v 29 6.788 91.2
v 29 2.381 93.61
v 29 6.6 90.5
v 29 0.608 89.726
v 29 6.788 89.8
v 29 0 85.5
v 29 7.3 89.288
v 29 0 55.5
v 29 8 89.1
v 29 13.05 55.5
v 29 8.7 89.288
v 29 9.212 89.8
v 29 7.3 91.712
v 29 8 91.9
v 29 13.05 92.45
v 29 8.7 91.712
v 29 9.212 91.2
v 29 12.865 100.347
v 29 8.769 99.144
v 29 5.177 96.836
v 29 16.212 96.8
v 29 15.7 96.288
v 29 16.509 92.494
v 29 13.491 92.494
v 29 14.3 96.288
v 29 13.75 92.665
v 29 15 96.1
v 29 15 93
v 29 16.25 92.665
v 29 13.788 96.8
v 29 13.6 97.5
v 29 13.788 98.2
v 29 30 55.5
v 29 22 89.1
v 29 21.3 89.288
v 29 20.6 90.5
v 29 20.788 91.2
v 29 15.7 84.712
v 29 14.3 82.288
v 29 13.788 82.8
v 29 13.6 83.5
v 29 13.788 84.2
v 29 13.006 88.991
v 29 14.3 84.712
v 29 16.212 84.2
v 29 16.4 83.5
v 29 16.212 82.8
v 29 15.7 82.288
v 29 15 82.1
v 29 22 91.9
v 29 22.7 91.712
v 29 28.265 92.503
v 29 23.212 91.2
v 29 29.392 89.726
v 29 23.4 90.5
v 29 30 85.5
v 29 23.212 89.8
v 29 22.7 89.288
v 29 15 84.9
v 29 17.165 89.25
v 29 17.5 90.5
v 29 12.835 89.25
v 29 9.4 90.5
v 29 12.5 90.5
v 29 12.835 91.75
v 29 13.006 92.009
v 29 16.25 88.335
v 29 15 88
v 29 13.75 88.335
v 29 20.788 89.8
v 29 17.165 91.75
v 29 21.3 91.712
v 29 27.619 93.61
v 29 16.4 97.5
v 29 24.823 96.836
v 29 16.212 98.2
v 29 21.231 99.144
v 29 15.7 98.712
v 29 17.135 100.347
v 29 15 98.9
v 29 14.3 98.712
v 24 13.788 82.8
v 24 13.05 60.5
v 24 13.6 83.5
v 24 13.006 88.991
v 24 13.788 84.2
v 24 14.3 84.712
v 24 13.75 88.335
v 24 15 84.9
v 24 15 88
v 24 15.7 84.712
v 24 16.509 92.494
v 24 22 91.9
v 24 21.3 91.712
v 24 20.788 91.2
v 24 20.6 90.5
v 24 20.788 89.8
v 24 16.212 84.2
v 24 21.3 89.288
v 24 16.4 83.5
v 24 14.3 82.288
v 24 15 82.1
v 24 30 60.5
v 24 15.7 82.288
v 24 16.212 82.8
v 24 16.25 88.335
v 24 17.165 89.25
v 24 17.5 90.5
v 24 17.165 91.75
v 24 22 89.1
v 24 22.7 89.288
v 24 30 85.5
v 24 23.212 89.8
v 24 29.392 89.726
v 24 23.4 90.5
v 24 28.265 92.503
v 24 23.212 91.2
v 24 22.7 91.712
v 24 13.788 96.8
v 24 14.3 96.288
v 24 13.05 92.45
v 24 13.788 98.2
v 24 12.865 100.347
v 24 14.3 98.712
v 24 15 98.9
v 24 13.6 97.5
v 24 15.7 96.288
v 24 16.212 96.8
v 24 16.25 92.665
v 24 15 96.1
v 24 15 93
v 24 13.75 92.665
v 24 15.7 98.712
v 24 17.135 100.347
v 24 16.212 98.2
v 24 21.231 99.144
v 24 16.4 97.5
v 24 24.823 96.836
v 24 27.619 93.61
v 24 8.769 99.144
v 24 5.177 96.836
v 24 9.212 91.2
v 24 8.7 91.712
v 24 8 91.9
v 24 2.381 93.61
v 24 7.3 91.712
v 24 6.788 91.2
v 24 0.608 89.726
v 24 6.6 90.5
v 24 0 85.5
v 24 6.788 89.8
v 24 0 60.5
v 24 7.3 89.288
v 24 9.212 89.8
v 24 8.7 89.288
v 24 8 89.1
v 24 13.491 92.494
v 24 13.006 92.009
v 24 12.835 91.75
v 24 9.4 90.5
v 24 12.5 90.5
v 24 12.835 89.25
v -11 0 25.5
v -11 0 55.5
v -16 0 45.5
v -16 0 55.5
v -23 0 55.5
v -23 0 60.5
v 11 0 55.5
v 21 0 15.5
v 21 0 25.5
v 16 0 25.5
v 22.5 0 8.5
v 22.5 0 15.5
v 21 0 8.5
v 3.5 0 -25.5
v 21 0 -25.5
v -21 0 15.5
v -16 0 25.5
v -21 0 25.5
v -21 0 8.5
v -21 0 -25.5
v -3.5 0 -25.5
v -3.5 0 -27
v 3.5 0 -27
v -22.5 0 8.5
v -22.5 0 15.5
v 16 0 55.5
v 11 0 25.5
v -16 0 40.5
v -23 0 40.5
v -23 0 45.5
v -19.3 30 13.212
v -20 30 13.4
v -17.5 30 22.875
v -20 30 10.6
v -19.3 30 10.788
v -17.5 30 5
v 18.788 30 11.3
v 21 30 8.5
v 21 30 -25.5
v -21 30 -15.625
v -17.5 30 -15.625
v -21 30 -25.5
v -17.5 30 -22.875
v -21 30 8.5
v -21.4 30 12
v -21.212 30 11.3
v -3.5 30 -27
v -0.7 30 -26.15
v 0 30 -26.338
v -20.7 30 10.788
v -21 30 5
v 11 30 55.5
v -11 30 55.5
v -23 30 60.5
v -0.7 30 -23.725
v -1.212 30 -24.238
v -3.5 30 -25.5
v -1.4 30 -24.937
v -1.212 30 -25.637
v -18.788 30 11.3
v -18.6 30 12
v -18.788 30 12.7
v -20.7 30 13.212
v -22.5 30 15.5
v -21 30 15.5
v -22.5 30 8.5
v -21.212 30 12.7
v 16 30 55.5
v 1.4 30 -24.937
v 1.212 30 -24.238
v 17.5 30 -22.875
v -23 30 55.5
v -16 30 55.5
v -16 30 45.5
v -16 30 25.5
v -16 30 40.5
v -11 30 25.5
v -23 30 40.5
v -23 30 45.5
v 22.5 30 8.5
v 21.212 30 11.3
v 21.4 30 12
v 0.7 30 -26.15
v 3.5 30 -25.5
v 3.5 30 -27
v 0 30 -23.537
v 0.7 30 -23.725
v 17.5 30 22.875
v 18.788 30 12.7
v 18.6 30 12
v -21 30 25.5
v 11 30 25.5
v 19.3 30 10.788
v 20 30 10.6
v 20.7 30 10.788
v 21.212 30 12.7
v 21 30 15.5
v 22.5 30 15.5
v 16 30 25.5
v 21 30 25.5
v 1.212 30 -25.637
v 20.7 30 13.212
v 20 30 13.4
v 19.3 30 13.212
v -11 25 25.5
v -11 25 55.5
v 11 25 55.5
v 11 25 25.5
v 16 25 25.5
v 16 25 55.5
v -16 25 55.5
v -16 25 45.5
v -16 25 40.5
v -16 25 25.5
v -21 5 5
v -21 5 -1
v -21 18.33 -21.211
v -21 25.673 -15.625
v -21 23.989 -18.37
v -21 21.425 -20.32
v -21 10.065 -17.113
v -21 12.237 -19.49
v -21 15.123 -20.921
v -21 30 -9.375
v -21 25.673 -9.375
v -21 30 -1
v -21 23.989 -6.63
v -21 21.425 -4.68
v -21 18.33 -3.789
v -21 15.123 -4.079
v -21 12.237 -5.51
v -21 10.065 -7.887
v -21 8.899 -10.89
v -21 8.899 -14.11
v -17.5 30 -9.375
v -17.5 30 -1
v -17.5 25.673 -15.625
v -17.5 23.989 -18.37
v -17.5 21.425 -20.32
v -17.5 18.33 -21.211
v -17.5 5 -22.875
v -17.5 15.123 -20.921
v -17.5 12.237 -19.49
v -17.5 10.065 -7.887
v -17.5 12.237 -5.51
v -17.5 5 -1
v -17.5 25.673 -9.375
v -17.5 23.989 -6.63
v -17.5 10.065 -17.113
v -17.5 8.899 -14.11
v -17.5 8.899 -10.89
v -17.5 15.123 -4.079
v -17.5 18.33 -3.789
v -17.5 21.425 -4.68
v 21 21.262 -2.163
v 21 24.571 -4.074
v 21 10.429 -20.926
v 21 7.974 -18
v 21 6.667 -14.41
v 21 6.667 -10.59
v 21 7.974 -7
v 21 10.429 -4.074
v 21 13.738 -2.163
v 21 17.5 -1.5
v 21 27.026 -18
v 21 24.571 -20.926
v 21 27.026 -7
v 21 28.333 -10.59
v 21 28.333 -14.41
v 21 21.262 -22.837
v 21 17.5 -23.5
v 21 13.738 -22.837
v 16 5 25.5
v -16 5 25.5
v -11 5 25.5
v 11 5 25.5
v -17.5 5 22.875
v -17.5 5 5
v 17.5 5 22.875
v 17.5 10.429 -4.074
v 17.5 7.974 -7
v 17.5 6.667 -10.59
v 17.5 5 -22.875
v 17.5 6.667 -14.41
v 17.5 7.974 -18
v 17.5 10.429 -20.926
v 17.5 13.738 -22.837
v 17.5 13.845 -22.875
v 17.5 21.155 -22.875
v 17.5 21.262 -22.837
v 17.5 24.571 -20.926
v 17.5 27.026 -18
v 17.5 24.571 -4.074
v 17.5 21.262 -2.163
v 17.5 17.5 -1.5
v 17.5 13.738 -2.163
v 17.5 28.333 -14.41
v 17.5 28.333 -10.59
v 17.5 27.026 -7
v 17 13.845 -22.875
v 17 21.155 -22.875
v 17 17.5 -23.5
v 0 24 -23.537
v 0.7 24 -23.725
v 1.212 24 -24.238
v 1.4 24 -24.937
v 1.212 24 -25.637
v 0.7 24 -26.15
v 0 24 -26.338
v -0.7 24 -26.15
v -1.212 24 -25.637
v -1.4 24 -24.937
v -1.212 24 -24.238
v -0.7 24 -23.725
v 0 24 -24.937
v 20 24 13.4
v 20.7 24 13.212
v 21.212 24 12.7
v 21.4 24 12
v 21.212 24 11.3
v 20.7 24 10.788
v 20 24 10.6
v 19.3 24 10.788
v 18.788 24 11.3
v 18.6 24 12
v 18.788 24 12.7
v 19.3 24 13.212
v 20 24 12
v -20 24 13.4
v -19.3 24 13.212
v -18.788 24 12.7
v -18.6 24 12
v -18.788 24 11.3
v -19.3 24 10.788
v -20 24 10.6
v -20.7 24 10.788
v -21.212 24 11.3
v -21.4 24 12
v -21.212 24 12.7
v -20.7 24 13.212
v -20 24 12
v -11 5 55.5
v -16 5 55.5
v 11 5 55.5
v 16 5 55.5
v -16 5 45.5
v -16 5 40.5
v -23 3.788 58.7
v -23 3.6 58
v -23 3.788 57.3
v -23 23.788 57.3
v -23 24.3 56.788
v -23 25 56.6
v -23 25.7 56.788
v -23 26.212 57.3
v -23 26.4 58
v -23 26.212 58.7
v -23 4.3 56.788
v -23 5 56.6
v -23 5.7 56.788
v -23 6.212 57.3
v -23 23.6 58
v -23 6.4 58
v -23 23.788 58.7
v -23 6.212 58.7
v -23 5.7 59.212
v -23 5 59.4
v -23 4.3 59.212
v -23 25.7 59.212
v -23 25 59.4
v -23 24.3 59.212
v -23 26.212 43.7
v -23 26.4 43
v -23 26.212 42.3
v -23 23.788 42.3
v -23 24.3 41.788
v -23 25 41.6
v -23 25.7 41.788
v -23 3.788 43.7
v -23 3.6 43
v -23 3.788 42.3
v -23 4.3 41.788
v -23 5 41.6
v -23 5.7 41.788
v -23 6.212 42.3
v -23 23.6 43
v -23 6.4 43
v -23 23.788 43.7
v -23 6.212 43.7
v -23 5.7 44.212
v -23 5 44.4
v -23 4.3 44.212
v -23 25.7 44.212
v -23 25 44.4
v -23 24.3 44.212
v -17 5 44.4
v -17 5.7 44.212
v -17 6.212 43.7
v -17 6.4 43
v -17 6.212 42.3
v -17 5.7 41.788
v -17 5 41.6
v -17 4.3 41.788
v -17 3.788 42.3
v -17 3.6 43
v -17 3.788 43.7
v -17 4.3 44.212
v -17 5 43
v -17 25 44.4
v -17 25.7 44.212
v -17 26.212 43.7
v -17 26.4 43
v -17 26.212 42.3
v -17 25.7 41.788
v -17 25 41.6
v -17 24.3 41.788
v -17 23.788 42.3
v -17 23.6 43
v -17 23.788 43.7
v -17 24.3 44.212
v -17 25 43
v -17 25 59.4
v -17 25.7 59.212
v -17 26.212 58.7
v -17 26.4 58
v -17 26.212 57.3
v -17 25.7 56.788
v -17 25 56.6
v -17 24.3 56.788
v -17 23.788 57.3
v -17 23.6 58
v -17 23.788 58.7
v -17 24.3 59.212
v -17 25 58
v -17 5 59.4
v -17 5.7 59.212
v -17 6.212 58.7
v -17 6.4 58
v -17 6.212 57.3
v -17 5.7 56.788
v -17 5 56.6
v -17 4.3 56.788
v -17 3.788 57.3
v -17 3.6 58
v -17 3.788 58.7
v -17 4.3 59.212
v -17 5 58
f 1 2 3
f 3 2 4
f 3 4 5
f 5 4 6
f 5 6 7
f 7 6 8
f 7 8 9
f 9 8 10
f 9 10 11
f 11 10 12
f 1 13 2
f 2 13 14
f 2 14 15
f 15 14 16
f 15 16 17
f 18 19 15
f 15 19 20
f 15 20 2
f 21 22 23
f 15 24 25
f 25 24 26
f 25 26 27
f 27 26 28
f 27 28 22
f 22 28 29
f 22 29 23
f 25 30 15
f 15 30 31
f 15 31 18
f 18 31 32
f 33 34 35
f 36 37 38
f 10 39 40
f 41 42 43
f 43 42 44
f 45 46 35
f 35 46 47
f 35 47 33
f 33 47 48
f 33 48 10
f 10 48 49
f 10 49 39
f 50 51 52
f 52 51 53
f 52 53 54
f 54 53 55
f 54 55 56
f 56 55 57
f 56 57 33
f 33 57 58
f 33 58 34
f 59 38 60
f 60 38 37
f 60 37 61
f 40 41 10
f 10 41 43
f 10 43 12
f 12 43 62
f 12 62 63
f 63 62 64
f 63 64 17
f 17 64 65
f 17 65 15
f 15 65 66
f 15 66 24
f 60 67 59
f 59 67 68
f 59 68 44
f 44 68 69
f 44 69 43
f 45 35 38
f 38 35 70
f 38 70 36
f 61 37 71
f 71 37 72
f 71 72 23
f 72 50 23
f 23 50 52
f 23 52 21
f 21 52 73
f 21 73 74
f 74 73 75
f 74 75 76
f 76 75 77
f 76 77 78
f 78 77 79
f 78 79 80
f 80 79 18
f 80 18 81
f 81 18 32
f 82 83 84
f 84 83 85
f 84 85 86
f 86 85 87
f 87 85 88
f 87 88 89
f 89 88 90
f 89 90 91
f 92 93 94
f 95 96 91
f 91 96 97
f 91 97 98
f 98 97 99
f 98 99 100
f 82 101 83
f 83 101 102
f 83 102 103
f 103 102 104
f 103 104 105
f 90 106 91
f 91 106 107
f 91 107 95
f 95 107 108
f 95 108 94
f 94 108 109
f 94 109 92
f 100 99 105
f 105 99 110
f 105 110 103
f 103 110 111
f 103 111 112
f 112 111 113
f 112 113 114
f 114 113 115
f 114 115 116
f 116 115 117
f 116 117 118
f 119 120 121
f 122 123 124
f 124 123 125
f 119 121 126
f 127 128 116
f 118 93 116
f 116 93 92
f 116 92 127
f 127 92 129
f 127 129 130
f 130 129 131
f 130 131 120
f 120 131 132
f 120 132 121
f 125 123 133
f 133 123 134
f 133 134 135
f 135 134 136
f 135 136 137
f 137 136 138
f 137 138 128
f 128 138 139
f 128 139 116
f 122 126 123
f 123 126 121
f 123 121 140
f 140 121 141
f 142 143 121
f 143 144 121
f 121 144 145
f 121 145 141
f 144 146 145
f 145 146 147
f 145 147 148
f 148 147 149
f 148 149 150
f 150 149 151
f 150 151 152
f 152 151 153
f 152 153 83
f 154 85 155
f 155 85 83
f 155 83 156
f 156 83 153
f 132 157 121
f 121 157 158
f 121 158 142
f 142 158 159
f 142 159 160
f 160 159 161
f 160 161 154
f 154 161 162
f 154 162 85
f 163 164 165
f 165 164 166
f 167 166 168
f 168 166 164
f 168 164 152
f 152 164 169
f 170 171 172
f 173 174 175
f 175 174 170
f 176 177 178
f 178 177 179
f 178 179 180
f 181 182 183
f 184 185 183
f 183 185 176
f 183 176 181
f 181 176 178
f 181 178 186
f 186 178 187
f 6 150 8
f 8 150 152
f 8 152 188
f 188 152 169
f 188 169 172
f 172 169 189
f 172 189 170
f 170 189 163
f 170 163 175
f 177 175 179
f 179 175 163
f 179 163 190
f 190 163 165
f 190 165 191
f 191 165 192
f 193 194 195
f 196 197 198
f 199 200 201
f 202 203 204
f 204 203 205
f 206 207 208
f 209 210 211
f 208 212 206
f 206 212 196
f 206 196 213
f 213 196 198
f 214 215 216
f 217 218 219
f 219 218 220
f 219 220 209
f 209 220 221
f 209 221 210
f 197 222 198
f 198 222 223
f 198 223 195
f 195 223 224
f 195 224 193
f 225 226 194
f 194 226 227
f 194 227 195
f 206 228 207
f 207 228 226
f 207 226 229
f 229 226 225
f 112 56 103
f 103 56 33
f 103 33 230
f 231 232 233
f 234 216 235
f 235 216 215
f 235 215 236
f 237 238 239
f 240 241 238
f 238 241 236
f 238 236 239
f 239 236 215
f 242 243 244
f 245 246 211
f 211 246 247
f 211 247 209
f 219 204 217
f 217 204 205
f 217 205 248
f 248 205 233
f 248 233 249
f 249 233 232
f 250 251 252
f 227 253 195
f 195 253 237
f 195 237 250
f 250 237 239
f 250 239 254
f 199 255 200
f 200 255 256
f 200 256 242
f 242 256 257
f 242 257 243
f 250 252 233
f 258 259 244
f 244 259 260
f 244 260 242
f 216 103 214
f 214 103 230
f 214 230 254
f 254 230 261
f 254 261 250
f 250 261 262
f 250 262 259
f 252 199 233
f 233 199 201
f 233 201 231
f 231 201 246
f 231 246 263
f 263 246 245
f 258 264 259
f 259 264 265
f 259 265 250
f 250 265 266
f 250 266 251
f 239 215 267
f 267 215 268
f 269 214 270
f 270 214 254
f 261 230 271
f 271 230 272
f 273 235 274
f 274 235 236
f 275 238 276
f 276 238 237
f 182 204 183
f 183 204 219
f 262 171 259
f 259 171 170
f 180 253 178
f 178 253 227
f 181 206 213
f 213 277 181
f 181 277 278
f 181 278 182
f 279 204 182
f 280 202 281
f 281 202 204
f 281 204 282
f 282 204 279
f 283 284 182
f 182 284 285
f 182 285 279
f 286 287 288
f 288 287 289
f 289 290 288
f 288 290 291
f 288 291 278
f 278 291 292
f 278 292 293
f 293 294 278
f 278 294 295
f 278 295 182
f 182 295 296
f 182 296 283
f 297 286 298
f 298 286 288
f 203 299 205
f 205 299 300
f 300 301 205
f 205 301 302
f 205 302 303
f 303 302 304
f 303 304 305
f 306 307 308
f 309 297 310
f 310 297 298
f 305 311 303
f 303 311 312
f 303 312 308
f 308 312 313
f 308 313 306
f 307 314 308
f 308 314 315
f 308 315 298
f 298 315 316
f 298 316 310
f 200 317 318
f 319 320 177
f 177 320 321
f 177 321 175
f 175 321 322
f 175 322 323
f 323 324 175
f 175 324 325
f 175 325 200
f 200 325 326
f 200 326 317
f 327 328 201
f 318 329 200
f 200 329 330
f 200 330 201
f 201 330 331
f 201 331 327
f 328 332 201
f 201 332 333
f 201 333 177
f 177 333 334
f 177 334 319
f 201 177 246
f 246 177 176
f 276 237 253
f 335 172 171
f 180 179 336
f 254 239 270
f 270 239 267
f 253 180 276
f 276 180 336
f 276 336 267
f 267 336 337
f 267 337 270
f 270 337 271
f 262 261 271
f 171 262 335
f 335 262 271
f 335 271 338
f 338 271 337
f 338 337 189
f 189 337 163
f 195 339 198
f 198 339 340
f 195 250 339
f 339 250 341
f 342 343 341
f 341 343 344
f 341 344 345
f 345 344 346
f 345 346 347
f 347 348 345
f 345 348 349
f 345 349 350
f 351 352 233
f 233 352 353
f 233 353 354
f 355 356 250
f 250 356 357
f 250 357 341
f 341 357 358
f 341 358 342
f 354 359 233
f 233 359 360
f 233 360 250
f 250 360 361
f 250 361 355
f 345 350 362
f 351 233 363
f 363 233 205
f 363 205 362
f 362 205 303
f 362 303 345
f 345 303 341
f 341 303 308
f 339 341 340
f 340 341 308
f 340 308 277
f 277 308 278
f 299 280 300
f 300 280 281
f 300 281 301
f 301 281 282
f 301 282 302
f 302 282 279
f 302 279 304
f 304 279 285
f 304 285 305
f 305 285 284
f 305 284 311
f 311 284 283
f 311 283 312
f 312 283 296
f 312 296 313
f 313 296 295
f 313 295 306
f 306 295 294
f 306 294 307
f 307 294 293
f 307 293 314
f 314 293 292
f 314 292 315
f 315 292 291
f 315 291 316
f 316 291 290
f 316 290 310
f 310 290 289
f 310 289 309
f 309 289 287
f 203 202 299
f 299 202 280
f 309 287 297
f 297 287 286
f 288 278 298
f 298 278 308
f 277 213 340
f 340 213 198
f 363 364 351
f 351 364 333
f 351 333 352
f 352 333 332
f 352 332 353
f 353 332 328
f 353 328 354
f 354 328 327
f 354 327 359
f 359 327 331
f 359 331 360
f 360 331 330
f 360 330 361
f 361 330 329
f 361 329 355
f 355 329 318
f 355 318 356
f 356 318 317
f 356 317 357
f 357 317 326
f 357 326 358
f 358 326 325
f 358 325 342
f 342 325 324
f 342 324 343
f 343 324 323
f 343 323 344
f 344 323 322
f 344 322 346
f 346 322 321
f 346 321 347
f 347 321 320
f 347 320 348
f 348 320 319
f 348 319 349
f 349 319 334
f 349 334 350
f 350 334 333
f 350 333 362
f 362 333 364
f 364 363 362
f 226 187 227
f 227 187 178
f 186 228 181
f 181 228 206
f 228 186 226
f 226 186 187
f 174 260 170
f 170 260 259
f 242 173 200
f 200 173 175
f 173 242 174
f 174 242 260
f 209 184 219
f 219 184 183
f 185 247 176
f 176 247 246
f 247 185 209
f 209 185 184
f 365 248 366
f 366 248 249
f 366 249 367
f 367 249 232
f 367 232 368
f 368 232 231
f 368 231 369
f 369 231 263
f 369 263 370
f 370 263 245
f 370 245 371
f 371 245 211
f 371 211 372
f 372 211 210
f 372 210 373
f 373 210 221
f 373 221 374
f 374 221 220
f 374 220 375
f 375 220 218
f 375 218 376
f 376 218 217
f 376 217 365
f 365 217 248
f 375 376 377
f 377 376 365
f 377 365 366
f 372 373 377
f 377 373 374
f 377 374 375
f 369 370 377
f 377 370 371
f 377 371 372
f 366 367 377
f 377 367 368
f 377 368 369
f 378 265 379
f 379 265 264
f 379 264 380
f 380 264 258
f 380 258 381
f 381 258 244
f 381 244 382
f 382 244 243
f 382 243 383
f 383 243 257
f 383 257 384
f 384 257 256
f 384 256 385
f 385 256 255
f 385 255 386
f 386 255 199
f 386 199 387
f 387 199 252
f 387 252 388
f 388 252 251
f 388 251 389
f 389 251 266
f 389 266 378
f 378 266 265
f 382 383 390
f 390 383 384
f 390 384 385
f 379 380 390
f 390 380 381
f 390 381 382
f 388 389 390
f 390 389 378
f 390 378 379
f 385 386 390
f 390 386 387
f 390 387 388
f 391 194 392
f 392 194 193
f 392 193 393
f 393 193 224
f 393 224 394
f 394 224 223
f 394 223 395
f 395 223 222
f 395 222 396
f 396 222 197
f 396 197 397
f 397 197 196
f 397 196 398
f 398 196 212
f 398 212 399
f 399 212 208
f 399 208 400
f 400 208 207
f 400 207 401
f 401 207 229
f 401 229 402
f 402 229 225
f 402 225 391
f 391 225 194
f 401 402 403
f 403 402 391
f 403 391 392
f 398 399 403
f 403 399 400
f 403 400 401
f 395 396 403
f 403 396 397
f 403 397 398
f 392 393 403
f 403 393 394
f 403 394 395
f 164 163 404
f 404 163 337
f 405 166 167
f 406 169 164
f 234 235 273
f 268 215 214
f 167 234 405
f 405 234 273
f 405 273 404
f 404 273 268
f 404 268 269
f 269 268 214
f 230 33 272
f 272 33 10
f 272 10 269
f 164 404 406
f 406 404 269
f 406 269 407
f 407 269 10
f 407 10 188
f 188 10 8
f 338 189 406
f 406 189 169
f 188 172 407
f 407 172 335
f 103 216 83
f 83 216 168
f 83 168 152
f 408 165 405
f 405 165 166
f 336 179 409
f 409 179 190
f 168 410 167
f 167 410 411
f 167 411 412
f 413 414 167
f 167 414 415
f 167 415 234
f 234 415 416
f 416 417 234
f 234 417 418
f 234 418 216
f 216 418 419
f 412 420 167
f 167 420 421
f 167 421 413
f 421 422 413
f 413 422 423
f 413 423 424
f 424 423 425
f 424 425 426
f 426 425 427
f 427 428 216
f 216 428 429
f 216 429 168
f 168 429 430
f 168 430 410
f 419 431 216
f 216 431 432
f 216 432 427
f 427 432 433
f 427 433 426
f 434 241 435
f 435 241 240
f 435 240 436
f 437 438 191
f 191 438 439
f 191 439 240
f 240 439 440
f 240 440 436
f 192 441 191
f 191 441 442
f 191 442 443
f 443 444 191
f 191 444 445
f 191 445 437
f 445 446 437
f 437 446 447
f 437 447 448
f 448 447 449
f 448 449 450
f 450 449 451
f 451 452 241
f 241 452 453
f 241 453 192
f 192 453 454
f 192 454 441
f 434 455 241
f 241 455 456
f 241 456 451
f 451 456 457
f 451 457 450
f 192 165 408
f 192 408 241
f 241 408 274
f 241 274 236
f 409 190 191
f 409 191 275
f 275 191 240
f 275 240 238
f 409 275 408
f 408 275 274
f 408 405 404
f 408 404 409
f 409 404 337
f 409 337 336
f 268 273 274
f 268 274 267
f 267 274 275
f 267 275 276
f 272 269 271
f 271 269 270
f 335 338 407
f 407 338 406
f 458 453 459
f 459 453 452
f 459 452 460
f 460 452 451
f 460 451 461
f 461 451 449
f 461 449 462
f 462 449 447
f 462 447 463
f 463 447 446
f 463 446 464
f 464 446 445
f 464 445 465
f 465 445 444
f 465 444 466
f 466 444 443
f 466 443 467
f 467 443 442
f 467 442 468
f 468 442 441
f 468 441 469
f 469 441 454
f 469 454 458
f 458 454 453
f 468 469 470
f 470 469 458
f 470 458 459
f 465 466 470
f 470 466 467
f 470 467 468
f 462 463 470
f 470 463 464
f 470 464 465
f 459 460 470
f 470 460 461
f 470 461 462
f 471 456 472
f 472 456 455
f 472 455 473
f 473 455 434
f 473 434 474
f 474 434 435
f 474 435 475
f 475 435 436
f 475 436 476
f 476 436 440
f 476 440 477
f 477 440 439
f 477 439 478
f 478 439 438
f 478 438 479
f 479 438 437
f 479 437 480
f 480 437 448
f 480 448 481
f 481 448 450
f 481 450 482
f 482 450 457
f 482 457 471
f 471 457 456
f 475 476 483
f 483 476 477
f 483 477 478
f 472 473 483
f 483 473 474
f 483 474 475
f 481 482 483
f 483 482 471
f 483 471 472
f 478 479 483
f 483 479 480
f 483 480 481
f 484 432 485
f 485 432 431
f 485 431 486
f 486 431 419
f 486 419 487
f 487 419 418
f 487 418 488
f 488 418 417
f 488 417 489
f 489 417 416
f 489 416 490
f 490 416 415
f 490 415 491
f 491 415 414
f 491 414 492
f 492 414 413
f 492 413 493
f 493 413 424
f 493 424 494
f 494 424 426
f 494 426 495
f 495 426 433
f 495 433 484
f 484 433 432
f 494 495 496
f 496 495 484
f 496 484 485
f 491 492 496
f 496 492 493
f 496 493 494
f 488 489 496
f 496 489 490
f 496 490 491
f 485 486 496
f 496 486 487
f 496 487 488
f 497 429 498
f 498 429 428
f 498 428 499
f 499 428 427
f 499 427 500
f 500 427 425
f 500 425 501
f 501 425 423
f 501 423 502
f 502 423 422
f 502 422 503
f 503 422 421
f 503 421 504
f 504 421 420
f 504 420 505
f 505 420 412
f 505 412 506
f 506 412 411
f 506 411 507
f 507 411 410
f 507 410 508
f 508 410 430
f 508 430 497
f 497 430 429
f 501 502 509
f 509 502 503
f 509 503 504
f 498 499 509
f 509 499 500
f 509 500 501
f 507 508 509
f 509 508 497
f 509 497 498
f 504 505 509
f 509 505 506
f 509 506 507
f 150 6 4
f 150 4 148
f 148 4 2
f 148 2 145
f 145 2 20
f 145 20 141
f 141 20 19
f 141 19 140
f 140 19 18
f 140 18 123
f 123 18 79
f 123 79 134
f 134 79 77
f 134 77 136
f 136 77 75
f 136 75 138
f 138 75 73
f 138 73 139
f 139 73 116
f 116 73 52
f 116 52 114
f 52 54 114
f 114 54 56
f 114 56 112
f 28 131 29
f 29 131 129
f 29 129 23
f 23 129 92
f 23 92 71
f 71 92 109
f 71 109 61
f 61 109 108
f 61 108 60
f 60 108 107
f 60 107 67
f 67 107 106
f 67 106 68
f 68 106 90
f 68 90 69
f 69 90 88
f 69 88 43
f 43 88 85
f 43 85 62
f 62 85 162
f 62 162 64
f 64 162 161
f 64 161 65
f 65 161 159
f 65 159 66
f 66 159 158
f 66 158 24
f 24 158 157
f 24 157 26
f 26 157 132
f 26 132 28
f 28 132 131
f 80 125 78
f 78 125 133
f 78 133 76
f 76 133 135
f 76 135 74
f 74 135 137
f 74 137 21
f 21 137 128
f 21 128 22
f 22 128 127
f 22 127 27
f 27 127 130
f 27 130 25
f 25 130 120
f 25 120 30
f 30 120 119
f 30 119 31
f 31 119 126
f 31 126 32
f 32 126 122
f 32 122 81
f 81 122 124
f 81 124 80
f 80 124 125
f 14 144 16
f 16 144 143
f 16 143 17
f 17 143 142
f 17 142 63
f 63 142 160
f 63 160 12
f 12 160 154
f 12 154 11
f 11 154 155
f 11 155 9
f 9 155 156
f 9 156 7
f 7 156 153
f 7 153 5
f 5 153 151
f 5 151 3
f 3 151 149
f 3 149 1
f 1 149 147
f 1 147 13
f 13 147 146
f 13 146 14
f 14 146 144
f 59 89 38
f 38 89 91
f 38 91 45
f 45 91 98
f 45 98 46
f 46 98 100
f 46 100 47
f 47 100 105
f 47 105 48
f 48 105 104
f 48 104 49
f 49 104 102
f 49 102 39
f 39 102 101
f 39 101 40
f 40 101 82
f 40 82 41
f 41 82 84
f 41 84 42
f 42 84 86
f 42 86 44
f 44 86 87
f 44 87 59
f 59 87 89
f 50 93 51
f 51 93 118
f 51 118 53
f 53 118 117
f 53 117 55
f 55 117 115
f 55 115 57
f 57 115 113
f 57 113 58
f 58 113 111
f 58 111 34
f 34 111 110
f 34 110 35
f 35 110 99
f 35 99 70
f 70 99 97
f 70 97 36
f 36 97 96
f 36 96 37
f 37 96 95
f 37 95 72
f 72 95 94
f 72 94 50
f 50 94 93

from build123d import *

# Parameters (mm, degrees)
BOSS_EXTRUDE1_DEPTH = 5
SKETCH3_W           = 42
SKETCH3_H           = 51
SKETCH3_W_2         = 35
SKETCH3_H_2         = 45.75
BOSS_EXTRUDE3_DEPTH = 25
SKETCH4_R           = 8.75
CUT_EXTRUDE2_DEPTH  = 5
CUT_EXTRUDE3_DEPTH  = 4
SKETCH7_W           = 6
SKETCH7_H           = 25
CUT_EXTRUDE4_DEPTH  = 4
SKETCH9_R           = 11
CUT_EXTRUDE5_DEPTH  = 4
SKETCH16_W          = 7
SKETCH16_H          = 30
BOSS_EXTRUDE5_DEPTH = 1.5
SKETCH17_W          = 7
SKETCH17_H          = 30
BOSS_EXTRUDE6_DEPTH = 1.5
SKETCH19_W          = 7
SKETCH19_H          = 30
BOSS_EXTRUDE7_DEPTH = 1.5
SKETCH18_R          = 1.4
CUT_EXTRUDE7_DEPTH  = 6
BOSS_EXTRUDE8_DEPTH = 30
SKETCH24_W          = 30
SKETCH24_H          = 20
CUT_EXTRUDE8_DEPTH  = 32
SKETCH29_R          = 1.4
CUT_EXTRUDE9_DEPTH  = 6
CUT_EXTRUDE10_DEPTH = 6
SKETCH28_R          = 2.5
SKETCH28_R_2        = 1.4
CUT_EXTRUDE11_DEPTH = 6


with BuildPart() as part:
    # Sketch1 → Boss-Extrude1 (new body)
    with BuildSketch(Plane(origin=(0, 0, 0), x_dir=(1, 0, 0), z_dir=(0, 1, 0))):
        Polygon((21, 25.5), (-21, 25.5), (-21, -25.5), (-16, -25.5), (-11, -25.5), (11, -25.5), (16, -25.5), (21, -25.5), align=None)
    extrude(amount=BOSS_EXTRUDE1_DEPTH)

    # Sketch3 → Boss-Extrude3 (add)
    with BuildSketch(Plane(origin=(0, 5, 0), x_dir=(1, 0, 0), z_dir=(0, 1, 0))):
        Rectangle(SKETCH3_W, SKETCH3_H)
        Rectangle(SKETCH3_W_2, SKETCH3_H_2, mode=Mode.SUBTRACT)
    extrude(amount=BOSS_EXTRUDE3_DEPTH)

    # Sketch4 → Cut-Extrude2 (cut)
    with BuildSketch(Plane.ZY.offset(21)):
        with Locations((-12.5, 17.5)):
            Circle(SKETCH4_R)
    extrude(amount=-CUT_EXTRUDE2_DEPTH, mode=Mode.SUBTRACT)

    # Sketch6 → Cut-Extrude3 (cut)
    with BuildSketch(Plane(origin=(-17.5, 0, 0), x_dir=(0, 0, -1), z_dir=(1, 0, 0))):
        with BuildLine():
            Line((9.375, 17.5), (9.375, 30))
            Line((9.375, 30), (15.625, 30))
            Line((15.625, 30), (15.625, 17.5))
            ThreePointArc((15.625, 17.5), (12.5, 14.375), (9.375, 17.5))
        make_face()
    extrude(amount=-CUT_EXTRUDE3_DEPTH, mode=Mode.SUBTRACT)

    # Sketch7 → Cut-Extrude4 (cut)
    with BuildSketch(Plane.ZY.offset(21)):
        with Locations((2, 17.5)):
            Rectangle(SKETCH7_W, SKETCH7_H)
    extrude(amount=-CUT_EXTRUDE4_DEPTH, mode=Mode.SUBTRACT)

    # Sketch9 → Cut-Extrude5 (cut)
    with BuildSketch(Plane(origin=(21, 0, 0), x_dir=(0, 0, -1), z_dir=(1, 0, 0))):
        with Locations((12.5, 17.5)):
            Circle(SKETCH9_R)
    extrude(amount=-CUT_EXTRUDE5_DEPTH, mode=Mode.SUBTRACT)

    # Sketch16 → Boss-Extrude5 (add)
    with BuildSketch(Plane.ZY.offset(21)):
        with Locations((12, 15)):
            Rectangle(SKETCH16_W, SKETCH16_H)
    extrude(amount=BOSS_EXTRUDE5_DEPTH)

    # Sketch17 → Boss-Extrude6 (add)
    with BuildSketch(Plane(origin=(21, 0, 0), x_dir=(0, 0, -1), z_dir=(1, 0, 0))):
        with Locations((-12, 15)):
            Rectangle(SKETCH17_W, SKETCH17_H)
    extrude(amount=BOSS_EXTRUDE6_DEPTH)

    # Sketch19 → Boss-Extrude7 (add)
    with BuildSketch(Plane(origin=(0, 0, -25.5), x_dir=(-1, 0, 0), z_dir=(0, 0, -1))):
        with Locations((0, 15)):
            Rectangle(SKETCH19_W, SKETCH19_H)
    extrude(amount=BOSS_EXTRUDE7_DEPTH)

    # Sketch18 → Cut-Extrude7 (cut)
    with BuildSketch(Plane(origin=(0, 30, 0), x_dir=(1, 0, 0), z_dir=(0, 1, 0))):
        with Locations((-20, -12)):
            Circle(SKETCH18_R)
        with Locations((20, -12)):
            Circle(SKETCH18_R)
        with Locations((0, 24.9375)):
            Circle(SKETCH18_R)
    extrude(amount=-CUT_EXTRUDE7_DEPTH, mode=Mode.SUBTRACT)

    # Sketch1<3> → Boss-Extrude8 (add)
    with BuildSketch(Plane(origin=(0, 0, 0), x_dir=(1, 0, 0), z_dir=(0, 1, 0))):
        Polygon((-11, -25.5), (-16, -25.5), (-16, -40.5), (-23, -40.5), (-23, -45.5), (-16, -45.5), (-16, -55.5), (-23, -55.5), (-23, -60.5), (24, -60.5), (24, -100.5), (29, -100.5), (29, -55.5), (16, -55.5), (16, -25.5), (11, -25.5), (11, -55.5), (-11, -55.5), align=None)
    extrude(amount=BOSS_EXTRUDE8_DEPTH)

    # Sketch24 → Cut-Extrude8 (cut)
    with BuildSketch(Plane.ZY.offset(16)):
        with Locations((40.5, 15)):
            Rectangle(SKETCH24_W, SKETCH24_H)
    extrude(amount=-CUT_EXTRUDE8_DEPTH, mode=Mode.SUBTRACT)

    # Sketch29 → Cut-Extrude9 (cut)
    with BuildSketch(Plane.ZY.offset(23)):
        with Locations((58, 25)):
            Circle(SKETCH29_R)
        with Locations((43, 25)):
            Circle(SKETCH29_R)
        with Locations((58, 5)):
            Circle(SKETCH29_R)
        with Locations((43, 5)):
            Circle(SKETCH29_R)
    extrude(amount=-CUT_EXTRUDE9_DEPTH, mode=Mode.SUBTRACT)

    # Sketch30 → Cut-Extrude10 (cut)
    with BuildSketch(Plane(origin=(29, 0, 0), x_dir=(0, 0, -1), z_dir=(1, 0, 0))):
        with BuildLine():
            ThreePointArc((-100.5, 15), (-96.106601718, 25.606601718), (-85.5, 30))
            Line((-85.5, 30), (-100.5, 30))
            Line((-100.5, 30), (-100.5, 15))
        make_face()
        with BuildLine():
            ThreePointArc((-85.5, 0), (-96.106601718, 4.393398282), (-100.5, 15))
            Line((-100.5, 15), (-100.5, 0))
            Line((-100.5, 0), (-85.5, 0))
        make_face()
    extrude(amount=-CUT_EXTRUDE10_DEPTH, mode=Mode.SUBTRACT)

    # Sketch28 → Cut-Extrude11 (cut)
    with BuildSketch(Plane.ZY.offset(-24)):
        with Locations((90.5, 15)):
            Circle(SKETCH28_R)
        with Locations((90.5, 22)):
            Circle(SKETCH28_R_2)
        with Locations((83.5, 15)):
            Circle(SKETCH28_R_2)
        with Locations((90.5, 8)):
            Circle(SKETCH28_R_2)
        with Locations((97.5, 15)):
            Circle(SKETCH28_R_2)
    extrude(amount=-CUT_EXTRUDE11_DEPTH, mode=Mode.SUBTRACT)


solid = part.part
